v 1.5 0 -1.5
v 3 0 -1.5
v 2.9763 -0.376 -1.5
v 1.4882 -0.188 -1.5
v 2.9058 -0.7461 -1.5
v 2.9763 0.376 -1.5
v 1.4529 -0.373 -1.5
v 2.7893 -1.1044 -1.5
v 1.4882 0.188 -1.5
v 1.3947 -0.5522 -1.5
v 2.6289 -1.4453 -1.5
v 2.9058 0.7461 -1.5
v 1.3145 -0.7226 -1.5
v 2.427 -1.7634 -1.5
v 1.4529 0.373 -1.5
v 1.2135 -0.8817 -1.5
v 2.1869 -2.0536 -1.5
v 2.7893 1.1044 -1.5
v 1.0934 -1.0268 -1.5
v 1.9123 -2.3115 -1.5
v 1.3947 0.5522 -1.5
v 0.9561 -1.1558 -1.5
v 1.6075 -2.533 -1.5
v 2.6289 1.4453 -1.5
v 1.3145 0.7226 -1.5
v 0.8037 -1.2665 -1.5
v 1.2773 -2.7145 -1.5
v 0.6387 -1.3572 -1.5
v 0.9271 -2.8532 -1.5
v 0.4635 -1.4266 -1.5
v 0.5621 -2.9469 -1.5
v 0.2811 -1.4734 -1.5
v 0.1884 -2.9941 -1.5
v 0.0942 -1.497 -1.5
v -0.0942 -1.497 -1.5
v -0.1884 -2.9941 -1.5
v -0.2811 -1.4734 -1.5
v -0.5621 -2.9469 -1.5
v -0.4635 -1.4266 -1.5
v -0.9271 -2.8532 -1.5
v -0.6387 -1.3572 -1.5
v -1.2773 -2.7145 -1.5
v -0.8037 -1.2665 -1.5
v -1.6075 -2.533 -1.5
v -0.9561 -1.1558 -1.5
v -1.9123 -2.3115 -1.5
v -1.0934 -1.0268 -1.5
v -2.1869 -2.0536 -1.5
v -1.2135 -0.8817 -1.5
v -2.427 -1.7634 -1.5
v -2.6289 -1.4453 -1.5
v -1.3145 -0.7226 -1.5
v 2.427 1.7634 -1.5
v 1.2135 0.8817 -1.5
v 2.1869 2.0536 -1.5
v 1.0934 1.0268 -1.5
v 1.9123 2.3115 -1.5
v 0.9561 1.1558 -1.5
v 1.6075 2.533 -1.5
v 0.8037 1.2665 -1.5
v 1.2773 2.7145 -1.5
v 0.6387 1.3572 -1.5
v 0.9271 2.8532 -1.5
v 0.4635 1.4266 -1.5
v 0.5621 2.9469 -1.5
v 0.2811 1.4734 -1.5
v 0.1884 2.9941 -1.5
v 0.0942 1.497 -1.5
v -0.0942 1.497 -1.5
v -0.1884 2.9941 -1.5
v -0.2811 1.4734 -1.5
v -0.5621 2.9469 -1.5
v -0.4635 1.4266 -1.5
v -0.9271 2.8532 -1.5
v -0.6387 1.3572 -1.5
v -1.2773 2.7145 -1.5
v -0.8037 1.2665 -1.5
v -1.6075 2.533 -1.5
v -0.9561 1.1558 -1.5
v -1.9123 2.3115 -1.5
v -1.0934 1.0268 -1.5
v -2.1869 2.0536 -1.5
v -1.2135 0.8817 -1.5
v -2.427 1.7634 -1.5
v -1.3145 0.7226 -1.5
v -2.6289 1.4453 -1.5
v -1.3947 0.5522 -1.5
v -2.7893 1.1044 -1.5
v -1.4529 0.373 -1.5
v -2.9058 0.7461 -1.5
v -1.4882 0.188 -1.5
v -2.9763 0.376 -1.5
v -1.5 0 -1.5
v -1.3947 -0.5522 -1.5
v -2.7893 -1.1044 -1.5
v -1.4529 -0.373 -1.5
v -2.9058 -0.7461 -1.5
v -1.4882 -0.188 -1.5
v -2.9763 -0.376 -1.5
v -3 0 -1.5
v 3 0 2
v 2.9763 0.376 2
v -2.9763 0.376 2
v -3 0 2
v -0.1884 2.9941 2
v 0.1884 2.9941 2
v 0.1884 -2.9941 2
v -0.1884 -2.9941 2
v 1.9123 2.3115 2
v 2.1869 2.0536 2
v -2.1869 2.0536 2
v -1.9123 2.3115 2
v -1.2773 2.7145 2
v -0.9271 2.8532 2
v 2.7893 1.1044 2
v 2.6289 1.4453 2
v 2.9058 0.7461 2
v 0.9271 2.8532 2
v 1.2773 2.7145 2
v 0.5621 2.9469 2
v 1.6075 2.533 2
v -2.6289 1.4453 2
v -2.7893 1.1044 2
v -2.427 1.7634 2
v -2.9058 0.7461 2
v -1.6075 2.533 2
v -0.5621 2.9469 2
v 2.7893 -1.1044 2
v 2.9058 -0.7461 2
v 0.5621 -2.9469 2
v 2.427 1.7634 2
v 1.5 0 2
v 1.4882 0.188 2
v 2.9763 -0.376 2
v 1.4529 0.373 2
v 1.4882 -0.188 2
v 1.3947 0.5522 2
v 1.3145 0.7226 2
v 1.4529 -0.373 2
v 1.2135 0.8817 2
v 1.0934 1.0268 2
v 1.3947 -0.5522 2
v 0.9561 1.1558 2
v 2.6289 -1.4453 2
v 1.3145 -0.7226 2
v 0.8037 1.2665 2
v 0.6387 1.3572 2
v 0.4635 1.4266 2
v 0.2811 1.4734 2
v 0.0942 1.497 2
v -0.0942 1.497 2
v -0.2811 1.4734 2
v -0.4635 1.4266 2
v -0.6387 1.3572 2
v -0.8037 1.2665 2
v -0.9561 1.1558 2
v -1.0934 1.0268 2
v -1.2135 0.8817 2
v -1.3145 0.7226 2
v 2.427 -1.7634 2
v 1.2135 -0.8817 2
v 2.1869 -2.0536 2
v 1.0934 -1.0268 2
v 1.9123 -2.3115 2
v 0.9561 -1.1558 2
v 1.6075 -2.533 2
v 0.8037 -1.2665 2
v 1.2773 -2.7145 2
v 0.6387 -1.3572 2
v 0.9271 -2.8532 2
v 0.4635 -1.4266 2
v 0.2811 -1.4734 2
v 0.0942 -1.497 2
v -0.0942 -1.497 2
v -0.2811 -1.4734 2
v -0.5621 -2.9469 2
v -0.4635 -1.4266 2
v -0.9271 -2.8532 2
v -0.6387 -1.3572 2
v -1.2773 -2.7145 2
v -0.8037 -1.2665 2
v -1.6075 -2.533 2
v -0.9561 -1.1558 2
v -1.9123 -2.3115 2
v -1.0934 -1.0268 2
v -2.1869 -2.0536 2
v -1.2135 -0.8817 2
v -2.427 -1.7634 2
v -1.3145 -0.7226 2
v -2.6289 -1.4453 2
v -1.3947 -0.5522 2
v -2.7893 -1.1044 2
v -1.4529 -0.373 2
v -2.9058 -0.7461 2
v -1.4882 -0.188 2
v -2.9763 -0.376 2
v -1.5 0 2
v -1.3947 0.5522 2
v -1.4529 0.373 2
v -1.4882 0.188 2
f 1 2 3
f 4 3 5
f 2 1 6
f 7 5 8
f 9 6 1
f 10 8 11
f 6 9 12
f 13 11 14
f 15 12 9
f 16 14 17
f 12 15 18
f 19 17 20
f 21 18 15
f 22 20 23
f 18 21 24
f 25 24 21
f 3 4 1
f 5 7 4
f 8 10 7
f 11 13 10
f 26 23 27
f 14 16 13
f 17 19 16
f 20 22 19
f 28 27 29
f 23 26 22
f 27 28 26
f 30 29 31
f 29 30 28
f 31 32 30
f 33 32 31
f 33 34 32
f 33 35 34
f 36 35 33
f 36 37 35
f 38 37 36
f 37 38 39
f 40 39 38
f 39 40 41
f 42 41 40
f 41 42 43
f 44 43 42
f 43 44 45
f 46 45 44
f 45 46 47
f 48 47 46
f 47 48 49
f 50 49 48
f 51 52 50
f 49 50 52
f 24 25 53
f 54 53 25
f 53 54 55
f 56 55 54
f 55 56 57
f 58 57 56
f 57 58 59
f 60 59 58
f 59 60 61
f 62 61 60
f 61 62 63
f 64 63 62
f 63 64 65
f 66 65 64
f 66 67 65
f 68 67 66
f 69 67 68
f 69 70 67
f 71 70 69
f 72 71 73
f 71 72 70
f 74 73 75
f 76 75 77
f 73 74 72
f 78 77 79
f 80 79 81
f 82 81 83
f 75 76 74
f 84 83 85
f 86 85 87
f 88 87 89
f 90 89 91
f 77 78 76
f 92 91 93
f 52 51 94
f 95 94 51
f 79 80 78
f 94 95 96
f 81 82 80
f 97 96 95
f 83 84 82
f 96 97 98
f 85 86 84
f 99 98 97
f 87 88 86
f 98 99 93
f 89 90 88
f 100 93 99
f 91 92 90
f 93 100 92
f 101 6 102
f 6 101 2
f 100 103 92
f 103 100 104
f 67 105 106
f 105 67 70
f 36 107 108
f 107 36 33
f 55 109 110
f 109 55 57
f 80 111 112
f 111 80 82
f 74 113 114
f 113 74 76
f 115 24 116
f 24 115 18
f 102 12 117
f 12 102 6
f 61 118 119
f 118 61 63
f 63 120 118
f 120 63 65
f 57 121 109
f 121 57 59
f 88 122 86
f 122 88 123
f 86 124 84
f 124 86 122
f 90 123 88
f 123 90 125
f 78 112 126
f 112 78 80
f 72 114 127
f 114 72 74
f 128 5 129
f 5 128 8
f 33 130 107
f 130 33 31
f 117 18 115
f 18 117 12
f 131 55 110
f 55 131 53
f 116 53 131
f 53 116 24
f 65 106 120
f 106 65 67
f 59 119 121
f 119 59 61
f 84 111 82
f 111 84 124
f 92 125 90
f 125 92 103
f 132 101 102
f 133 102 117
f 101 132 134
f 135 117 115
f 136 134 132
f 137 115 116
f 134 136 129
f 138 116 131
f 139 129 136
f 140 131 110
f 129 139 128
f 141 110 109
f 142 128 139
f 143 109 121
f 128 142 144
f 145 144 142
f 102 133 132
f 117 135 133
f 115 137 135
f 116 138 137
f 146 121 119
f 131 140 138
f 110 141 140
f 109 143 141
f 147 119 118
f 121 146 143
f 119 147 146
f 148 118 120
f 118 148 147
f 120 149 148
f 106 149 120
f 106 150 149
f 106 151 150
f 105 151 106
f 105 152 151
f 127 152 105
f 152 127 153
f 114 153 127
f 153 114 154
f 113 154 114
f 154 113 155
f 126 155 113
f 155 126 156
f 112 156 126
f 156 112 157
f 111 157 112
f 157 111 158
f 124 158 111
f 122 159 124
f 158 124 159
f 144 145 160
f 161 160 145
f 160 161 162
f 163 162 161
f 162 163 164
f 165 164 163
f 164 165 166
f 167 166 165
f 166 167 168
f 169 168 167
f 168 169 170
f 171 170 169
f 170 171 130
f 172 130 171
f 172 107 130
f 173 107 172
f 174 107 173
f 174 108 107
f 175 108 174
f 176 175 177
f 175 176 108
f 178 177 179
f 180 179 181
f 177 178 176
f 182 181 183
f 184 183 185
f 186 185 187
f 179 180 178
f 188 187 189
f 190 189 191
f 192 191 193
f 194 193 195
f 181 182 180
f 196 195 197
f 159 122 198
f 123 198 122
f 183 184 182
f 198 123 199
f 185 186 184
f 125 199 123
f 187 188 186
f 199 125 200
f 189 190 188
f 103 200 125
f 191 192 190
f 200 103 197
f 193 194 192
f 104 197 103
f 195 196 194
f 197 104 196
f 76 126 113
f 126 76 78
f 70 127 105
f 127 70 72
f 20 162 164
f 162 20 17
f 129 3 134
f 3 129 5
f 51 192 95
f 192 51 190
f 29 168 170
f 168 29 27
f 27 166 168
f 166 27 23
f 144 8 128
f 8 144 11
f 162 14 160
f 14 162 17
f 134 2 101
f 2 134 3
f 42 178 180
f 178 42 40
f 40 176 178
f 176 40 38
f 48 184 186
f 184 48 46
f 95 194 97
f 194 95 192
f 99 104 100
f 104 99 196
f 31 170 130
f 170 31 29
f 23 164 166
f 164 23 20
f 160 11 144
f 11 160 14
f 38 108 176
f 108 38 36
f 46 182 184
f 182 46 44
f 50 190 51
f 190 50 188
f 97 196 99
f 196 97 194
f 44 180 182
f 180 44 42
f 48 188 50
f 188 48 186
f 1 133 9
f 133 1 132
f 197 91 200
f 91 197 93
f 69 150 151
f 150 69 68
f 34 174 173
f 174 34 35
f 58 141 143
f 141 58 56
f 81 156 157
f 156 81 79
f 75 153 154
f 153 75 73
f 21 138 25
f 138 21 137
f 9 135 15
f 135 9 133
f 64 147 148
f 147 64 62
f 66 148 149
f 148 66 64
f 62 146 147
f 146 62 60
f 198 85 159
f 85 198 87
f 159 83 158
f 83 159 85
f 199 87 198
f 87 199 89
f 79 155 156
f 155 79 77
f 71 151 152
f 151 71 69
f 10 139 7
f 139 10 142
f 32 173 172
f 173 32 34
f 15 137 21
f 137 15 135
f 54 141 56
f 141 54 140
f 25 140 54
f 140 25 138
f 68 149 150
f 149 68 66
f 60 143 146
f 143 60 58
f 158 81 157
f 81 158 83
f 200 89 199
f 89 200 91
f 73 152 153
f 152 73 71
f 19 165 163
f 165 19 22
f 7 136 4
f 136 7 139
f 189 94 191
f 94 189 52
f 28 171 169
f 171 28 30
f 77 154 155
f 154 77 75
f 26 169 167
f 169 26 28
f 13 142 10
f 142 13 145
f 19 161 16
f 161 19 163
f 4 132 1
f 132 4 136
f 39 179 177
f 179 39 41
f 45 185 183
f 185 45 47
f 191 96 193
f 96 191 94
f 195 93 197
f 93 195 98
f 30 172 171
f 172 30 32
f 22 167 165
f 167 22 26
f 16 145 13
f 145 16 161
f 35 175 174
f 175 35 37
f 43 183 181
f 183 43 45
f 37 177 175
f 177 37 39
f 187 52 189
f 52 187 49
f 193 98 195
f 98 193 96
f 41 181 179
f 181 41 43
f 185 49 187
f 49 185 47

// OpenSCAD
$fn = 50;


difference() {
	union() {
		translate(v = [0, 0, -1.5000000000]) {
			cylinder(h = 3, r = 1.0000000000);
		}
		translate(v = [0, 0, -1.5000000000]) {
			cylinder(h = 3.5000000000, r = 3.0000000000);
		}
	}
	union() {
		translate(v = [0, 0, -100.0000000000]) {
			cylinder(h = 200, r = 1.5000000000);
		}
	}
}
